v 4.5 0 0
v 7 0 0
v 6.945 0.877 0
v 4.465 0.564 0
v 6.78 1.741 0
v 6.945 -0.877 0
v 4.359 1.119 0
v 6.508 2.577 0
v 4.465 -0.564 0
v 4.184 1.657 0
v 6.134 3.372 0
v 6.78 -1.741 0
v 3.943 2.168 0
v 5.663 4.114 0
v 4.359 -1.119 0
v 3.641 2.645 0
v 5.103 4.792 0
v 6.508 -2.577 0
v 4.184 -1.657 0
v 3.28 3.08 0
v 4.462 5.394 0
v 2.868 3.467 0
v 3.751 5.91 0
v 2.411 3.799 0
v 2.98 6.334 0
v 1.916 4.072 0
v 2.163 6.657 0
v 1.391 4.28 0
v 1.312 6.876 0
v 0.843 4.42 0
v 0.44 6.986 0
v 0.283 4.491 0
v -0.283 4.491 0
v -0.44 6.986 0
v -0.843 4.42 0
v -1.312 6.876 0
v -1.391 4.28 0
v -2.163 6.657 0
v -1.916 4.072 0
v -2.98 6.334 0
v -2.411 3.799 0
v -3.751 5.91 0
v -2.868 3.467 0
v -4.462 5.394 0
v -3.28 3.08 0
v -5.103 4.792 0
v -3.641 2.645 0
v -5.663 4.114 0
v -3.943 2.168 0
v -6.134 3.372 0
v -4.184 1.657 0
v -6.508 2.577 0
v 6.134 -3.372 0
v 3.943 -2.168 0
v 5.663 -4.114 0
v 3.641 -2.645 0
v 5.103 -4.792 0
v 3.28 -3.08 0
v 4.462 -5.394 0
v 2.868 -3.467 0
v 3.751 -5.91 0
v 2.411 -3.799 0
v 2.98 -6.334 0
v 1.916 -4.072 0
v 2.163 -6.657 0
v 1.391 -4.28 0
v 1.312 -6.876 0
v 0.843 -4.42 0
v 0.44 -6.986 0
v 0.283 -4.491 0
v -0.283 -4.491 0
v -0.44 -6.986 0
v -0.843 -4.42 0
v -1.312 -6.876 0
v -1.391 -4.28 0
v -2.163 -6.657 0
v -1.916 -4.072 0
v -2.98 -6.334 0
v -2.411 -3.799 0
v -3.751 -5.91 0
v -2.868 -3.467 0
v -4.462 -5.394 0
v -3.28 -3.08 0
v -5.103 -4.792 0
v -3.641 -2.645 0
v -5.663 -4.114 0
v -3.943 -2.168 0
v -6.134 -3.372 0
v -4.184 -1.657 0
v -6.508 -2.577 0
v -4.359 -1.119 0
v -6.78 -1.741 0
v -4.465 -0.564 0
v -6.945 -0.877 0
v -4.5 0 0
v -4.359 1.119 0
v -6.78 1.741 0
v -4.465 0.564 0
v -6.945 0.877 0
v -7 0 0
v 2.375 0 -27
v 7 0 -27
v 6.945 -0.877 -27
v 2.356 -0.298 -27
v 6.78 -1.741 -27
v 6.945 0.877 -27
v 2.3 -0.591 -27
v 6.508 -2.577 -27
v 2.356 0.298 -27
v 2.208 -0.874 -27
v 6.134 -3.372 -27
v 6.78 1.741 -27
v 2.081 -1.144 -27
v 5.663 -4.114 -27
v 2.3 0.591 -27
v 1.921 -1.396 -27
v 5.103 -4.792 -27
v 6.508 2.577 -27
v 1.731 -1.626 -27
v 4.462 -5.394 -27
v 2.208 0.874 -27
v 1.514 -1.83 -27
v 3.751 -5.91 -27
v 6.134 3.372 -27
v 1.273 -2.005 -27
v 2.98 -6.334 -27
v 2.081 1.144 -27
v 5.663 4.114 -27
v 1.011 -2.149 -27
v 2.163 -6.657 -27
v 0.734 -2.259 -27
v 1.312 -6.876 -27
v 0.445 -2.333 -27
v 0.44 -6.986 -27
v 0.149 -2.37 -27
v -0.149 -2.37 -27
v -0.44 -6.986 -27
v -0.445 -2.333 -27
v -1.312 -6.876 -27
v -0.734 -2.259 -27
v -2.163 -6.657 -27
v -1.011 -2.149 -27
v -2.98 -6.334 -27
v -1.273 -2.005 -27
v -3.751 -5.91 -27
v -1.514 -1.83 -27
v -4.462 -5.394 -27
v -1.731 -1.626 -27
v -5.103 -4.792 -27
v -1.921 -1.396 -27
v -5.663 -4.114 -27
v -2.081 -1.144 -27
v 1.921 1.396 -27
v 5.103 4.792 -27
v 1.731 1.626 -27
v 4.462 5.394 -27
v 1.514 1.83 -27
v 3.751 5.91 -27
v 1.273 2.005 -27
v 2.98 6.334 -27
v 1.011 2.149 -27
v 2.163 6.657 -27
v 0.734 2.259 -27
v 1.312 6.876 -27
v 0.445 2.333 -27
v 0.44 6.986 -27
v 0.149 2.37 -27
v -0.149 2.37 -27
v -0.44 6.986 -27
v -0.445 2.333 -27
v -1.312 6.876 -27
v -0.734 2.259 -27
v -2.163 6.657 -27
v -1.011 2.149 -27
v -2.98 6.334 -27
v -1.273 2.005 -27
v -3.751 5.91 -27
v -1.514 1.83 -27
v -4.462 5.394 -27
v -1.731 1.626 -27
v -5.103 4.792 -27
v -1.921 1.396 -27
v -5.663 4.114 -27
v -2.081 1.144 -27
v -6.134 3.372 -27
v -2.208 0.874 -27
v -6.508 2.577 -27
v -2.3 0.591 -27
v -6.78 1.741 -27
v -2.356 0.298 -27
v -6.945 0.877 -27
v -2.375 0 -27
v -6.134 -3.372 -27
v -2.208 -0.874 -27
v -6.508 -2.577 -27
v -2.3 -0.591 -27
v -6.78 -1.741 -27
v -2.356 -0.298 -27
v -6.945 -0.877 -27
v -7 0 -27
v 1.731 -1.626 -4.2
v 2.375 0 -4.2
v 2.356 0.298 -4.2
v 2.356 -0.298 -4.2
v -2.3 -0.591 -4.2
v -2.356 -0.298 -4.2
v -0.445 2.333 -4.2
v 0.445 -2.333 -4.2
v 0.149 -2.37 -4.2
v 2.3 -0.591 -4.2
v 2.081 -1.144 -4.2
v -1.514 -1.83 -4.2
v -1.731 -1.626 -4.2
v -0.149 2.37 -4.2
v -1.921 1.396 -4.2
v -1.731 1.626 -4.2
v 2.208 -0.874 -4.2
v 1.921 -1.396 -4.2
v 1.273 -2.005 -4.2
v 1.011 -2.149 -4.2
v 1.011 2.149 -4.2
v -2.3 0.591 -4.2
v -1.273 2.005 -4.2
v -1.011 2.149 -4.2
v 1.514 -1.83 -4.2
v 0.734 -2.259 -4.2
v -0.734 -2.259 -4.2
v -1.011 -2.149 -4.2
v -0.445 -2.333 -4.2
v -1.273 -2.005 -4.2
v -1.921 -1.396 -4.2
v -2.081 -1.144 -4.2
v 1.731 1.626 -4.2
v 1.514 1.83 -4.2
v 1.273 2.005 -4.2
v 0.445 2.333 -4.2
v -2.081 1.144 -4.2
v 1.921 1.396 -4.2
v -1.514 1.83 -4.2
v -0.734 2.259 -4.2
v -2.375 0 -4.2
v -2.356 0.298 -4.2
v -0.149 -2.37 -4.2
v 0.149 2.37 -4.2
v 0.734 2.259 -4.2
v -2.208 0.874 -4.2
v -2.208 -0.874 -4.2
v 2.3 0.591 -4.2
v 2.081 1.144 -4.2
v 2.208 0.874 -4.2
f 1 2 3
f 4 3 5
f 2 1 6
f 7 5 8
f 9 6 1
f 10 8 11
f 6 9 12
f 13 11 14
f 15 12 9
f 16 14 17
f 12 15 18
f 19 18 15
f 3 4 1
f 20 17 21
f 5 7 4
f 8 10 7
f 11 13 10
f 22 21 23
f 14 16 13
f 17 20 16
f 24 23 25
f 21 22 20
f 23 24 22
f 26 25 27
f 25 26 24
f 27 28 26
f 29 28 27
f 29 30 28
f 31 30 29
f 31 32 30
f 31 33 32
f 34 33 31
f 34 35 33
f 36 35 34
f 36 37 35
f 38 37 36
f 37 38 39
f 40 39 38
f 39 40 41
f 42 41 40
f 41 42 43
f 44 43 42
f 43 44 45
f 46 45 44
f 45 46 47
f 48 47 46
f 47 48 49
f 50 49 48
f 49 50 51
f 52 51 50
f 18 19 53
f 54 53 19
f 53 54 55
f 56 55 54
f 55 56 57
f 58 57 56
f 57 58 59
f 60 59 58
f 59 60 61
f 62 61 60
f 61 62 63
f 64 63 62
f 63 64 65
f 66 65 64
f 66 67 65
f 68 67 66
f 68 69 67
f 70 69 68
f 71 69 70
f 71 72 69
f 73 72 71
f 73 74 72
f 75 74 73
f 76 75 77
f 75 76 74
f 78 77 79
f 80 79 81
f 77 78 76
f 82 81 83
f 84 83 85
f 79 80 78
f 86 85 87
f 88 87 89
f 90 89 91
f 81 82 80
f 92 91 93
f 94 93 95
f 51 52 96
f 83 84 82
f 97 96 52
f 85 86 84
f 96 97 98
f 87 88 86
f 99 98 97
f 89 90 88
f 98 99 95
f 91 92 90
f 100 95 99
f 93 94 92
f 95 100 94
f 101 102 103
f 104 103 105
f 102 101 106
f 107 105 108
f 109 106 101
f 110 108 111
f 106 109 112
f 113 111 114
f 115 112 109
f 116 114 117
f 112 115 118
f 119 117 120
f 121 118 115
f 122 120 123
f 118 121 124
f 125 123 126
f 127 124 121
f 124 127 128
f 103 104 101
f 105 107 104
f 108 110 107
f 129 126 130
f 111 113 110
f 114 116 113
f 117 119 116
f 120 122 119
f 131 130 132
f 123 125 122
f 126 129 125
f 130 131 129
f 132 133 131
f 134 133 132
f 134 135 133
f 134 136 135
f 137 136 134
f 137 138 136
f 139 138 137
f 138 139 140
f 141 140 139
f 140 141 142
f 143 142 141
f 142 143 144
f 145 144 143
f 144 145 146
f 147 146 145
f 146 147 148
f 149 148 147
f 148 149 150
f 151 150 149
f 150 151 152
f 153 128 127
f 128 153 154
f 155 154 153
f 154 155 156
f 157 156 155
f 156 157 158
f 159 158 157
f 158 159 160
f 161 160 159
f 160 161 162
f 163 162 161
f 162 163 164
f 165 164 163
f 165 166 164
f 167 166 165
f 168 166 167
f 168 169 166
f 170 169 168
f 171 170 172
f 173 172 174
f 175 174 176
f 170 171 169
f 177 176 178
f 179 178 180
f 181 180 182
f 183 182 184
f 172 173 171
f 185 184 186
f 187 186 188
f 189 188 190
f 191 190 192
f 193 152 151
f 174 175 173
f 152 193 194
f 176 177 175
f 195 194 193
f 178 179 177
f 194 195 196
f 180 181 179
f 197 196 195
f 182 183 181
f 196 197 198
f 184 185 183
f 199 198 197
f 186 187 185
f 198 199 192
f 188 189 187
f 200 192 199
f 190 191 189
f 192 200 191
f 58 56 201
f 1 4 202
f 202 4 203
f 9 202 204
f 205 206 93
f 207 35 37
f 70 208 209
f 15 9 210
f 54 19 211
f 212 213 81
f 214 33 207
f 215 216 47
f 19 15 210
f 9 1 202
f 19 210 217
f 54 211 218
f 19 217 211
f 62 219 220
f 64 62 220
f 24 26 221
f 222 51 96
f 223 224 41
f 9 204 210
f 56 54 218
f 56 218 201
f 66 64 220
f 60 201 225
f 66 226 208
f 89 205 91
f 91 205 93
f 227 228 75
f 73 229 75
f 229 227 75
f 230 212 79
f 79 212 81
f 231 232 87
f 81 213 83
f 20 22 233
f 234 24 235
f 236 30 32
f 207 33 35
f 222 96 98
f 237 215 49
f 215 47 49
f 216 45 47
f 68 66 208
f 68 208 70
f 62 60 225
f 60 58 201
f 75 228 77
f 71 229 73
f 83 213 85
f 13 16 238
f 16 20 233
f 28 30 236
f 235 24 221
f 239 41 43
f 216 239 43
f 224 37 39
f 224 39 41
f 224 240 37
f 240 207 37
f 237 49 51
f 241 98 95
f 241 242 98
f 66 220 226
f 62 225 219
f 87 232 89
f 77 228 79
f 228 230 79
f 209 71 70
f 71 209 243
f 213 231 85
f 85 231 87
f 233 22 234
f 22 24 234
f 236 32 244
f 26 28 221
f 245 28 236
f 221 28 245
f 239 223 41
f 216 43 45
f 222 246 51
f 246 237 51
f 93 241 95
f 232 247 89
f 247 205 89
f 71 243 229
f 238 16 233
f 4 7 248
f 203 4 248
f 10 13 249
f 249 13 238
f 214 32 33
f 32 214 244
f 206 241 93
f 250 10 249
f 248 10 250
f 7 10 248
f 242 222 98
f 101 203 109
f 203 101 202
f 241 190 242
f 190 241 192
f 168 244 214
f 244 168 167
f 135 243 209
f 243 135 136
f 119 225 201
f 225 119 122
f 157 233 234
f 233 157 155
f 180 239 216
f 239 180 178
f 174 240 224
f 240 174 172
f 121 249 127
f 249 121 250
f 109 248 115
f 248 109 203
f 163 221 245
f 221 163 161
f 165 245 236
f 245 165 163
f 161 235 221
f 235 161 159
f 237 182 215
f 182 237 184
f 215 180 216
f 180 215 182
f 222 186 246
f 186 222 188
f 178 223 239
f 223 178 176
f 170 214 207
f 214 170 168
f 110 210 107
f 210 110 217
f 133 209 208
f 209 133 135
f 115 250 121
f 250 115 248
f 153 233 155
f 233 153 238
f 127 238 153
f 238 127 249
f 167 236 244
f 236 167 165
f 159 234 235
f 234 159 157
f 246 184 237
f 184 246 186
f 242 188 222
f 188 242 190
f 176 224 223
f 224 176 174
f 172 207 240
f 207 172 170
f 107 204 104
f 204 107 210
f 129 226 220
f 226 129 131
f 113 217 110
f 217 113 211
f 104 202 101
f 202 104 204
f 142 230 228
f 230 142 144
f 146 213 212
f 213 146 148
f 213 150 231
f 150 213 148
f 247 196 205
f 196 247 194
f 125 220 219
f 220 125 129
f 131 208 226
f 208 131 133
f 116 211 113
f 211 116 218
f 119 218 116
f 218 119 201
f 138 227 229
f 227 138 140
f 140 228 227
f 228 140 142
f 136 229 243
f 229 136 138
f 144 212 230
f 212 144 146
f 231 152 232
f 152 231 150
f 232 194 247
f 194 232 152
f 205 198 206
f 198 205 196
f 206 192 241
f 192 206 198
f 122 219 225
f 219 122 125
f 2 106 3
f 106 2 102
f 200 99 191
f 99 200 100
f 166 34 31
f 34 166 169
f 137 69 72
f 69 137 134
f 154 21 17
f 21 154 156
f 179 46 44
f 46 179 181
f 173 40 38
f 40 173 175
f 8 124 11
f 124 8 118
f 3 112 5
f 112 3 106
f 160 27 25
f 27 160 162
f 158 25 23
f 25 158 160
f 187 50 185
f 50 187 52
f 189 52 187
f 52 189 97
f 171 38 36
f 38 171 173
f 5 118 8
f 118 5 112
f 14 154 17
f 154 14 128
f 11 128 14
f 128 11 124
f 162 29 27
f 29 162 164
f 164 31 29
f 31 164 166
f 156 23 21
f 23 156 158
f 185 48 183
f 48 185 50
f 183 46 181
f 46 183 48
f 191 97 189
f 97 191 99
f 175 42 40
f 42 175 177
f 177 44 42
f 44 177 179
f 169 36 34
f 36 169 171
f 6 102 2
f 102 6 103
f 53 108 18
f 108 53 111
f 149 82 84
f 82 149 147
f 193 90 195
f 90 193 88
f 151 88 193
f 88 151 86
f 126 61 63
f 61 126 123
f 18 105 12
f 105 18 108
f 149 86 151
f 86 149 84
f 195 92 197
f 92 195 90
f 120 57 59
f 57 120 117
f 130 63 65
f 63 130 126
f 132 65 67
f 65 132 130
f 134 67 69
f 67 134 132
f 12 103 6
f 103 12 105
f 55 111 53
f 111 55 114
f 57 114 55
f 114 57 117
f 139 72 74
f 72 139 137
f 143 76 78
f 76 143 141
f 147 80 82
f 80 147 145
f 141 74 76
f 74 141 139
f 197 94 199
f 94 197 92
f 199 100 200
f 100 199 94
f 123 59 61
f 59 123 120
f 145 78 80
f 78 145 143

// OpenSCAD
$fn = 50;


difference() {
	union() {
		translate(v = [0, 0, -27.0000000000]) {
			cylinder(h = 27, r = 7.0000000000);
		}
		cylinder(h = 0, r = 13.0000000000);
	}
	union() {
		translate(v = [0, 0, 0]) {
			rotate(a = [0, 0, 0]) {
				difference() {
					union() {
						#translate(v = [0, 0, -27.0000000000]) {
							cylinder(h = 27, r = 2.2500000000);
						}
						#translate(v = [0, 0, -4.2000000000]) {
							cylinder(h = 4.2000000000, r = 7.0000000000, r1 = 2.3750000000, r2 = 4.5000000000);
						}
						#translate(v = [0, 0, -27.0000000000]) {
							cylinder(h = 27, r = 2.3750000000);
						}
						#translate(v = [0, 0, -27.0000000000]) {
							cylinder(h = 27, r = 2.2500000000);
						}
					}
					union();
				}
			}
		}
	}
}
